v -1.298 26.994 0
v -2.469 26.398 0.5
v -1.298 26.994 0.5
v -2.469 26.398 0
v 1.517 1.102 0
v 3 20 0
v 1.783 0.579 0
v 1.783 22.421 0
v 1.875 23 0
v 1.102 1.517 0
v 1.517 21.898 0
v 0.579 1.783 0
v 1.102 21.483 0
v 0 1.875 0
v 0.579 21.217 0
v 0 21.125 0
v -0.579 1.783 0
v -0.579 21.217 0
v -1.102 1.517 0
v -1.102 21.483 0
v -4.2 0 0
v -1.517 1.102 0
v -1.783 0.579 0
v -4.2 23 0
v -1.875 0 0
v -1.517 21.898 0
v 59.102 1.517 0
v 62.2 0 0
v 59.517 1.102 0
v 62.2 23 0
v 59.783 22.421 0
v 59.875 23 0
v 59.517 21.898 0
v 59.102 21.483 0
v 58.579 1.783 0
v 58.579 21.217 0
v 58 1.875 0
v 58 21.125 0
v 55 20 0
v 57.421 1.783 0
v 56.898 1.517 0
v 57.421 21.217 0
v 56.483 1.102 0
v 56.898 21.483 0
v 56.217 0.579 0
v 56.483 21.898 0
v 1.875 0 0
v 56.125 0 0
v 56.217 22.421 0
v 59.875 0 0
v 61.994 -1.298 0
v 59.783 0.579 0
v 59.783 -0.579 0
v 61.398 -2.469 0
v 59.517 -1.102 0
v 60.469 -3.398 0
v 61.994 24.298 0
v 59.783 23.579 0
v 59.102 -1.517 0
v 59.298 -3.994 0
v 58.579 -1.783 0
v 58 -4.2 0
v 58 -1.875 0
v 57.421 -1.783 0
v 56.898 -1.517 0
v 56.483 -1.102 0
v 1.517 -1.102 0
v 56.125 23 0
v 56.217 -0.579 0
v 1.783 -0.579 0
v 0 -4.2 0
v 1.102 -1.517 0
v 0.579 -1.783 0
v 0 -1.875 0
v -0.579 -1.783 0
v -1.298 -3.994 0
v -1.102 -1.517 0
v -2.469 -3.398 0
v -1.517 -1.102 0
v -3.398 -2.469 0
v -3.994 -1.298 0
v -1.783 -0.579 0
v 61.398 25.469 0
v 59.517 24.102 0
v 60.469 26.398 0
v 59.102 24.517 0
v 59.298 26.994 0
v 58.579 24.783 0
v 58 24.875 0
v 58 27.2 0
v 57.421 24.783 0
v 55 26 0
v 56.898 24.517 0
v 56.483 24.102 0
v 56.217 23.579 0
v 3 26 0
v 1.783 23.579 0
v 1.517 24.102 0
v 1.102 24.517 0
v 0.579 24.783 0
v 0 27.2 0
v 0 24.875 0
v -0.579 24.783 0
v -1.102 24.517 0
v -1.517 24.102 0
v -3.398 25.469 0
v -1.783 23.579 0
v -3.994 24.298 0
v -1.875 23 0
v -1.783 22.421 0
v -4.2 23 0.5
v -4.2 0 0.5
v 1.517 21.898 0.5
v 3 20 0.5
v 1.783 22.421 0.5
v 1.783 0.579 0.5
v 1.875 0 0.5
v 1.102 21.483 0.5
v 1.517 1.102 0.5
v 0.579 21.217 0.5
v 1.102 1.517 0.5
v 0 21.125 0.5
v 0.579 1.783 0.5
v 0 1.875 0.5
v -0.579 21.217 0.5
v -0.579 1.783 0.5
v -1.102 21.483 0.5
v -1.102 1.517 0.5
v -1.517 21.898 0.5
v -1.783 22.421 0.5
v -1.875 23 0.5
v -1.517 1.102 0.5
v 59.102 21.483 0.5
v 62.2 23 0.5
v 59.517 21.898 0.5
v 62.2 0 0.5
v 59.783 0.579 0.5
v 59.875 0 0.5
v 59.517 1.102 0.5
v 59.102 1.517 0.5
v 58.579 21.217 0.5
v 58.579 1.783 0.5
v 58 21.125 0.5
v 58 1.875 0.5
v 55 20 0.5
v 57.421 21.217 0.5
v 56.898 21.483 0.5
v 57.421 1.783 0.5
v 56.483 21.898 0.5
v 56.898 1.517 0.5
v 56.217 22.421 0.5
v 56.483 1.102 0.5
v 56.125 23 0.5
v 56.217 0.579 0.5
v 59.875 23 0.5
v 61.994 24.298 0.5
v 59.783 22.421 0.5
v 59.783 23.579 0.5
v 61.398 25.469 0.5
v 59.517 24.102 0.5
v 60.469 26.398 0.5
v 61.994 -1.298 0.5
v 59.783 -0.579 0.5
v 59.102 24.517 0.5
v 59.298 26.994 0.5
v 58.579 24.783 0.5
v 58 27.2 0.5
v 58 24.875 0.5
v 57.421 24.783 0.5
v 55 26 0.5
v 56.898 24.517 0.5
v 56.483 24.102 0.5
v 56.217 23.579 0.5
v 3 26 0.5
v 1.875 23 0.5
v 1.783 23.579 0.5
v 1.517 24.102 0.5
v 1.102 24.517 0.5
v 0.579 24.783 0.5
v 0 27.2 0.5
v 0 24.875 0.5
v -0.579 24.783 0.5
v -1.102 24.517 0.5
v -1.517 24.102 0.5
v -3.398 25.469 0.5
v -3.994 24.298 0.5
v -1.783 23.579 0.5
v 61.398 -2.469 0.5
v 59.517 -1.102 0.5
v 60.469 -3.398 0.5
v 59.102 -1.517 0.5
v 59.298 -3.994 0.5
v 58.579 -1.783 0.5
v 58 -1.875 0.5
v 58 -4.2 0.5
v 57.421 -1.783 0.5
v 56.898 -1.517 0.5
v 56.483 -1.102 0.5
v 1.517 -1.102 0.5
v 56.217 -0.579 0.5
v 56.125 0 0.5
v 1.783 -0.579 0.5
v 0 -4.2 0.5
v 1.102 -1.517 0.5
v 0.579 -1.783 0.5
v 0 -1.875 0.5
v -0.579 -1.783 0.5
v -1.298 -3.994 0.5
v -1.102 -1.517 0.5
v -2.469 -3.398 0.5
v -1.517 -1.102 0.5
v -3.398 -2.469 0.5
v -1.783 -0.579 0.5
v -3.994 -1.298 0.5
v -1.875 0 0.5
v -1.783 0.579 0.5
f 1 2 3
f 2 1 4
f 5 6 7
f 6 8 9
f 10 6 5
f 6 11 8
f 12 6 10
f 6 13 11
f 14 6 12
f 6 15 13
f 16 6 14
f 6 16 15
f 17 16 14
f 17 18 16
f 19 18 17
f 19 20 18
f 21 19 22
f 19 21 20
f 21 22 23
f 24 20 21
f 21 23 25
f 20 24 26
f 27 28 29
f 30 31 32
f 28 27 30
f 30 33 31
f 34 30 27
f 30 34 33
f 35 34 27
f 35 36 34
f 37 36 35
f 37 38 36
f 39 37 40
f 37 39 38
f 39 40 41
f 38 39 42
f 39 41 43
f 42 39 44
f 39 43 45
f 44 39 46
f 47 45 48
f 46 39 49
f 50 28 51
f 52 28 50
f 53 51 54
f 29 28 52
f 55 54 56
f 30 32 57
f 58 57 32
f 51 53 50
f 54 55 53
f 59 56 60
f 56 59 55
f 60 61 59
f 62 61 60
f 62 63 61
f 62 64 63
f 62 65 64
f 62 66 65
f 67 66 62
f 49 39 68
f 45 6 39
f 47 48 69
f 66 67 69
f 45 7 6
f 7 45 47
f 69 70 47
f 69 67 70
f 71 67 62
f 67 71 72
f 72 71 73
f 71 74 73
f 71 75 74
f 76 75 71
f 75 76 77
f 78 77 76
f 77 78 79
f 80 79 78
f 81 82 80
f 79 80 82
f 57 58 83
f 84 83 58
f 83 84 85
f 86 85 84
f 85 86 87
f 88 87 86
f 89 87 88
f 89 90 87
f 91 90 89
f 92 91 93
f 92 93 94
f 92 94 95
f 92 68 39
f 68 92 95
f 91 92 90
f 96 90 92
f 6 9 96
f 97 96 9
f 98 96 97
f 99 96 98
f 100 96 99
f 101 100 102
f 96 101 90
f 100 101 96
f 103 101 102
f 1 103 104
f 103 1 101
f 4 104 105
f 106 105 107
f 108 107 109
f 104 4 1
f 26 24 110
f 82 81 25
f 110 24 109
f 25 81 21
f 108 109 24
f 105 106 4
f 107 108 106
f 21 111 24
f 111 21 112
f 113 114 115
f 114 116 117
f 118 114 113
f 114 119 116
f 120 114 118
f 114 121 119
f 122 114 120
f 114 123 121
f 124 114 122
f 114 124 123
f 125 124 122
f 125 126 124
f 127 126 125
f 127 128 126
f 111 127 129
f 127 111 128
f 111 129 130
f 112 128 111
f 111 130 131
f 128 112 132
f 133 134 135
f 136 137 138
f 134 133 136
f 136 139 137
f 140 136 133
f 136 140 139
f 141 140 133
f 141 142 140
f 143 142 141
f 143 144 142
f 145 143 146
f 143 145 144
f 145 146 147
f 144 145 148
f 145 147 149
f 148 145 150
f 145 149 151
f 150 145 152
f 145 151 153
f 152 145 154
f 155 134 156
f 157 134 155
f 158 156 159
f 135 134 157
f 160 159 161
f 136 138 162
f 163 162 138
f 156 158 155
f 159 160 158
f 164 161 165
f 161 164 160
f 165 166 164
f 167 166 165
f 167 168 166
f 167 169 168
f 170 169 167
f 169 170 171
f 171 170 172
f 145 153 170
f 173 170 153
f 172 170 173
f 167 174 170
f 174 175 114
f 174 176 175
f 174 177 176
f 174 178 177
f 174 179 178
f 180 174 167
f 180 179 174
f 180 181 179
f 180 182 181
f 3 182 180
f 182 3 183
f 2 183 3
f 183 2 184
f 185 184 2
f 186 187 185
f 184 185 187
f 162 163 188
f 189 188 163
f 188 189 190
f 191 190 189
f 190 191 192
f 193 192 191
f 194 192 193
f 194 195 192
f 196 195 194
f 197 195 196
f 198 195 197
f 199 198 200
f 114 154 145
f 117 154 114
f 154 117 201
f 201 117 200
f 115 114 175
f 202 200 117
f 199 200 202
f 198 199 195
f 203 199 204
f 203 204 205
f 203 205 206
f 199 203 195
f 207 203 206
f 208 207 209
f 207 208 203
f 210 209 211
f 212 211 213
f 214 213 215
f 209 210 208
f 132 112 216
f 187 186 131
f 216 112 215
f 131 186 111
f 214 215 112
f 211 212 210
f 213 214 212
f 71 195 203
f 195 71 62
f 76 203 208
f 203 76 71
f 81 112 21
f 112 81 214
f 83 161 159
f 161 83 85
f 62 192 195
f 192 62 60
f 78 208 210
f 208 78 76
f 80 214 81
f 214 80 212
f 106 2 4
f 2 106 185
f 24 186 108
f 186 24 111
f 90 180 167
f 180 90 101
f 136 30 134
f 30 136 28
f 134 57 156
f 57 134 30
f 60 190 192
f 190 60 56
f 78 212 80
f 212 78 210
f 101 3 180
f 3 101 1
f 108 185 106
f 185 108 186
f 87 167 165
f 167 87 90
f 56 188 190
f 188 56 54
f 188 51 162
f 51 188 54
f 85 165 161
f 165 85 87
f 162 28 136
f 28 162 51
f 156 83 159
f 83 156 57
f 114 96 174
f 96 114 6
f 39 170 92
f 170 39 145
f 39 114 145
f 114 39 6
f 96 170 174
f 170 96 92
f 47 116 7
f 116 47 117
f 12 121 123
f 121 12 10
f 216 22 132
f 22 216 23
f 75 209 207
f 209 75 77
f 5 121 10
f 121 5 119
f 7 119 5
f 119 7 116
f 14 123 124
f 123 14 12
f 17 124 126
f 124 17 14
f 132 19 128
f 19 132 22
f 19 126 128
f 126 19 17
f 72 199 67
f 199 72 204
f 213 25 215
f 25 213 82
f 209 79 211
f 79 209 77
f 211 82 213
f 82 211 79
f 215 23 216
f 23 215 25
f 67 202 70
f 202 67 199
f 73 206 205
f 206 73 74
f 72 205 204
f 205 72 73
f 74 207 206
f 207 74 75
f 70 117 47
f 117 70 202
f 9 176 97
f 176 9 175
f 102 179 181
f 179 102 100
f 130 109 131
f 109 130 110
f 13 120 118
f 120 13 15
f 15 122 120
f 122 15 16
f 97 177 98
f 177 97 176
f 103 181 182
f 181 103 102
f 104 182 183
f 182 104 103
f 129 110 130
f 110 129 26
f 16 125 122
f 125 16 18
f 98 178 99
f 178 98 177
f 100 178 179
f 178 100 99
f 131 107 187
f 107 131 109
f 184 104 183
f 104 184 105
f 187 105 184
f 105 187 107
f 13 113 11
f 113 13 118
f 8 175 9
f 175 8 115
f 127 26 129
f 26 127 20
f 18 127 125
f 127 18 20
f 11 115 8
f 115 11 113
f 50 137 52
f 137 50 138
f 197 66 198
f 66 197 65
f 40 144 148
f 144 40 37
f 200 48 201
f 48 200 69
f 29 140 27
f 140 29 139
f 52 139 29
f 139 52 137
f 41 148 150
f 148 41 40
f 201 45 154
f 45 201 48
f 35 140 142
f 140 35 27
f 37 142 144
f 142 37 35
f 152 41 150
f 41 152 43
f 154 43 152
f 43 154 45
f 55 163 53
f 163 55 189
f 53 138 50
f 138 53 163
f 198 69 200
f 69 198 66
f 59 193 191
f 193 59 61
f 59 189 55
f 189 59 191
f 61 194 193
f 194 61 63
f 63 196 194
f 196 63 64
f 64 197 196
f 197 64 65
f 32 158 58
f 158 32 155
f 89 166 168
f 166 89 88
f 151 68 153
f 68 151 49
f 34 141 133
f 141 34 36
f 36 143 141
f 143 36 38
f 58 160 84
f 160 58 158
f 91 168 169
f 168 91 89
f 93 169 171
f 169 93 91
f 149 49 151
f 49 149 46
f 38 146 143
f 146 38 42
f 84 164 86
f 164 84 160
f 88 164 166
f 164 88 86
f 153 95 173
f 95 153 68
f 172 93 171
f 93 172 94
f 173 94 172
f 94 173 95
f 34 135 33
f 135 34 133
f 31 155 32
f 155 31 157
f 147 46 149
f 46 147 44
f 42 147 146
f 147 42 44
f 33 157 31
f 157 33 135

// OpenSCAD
$fn=20;
// Openscad Raspberry Pi Zero W Test Controller Top
// Author: Brian Khuu 2019
// Note: Dimentions based on https://blog.protoneer.co.nz/raspberry-pi-zero-footprint-dimensions/

module rpi_zero_bulk(h_mm, outset)
{
  header_tol = 1;
  hole_tol = 1;

  difference()
  {
    union()
    {
      hull()
      {
        translate([0,0,0])
          cylinder(r=3.5+outset,h=h_mm);
        translate([0,23,0])
          cylinder(r=3.5+outset,h=h_mm);
        translate([58,0,0])
          cylinder(r=3.5+outset,h=h_mm);
        translate([58,23,0])
          cylinder(r=3.5+outset,h=h_mm);
      }
    }

    // Header
    translate([29,23,+h_mm/2])
      cube([51+header_tol,5+header_tol,h_mm], center=true);
    
    // Holes
    translate([0,0,-1])
      cylinder(r=((2.75+hole_tol)/2),h=h_mm+2);
    translate([0,23,-1])
      cylinder(r=((2.75+hole_tol)/2),h=h_mm+2);
    translate([58,0,-1])
      cylinder(r=((2.75+hole_tol)/2),h=h_mm+2);
    translate([58,23,-1])
      cylinder(r=((2.75+hole_tol)/2),h=h_mm+2);
  }
}

module rpi_zero_hat_bottom()
{
  %rpi_zero_bulk(1, 0);
  rpi_zero_bulk(0.5, 0.7);
}

rpi_zero_hat_bottom();
